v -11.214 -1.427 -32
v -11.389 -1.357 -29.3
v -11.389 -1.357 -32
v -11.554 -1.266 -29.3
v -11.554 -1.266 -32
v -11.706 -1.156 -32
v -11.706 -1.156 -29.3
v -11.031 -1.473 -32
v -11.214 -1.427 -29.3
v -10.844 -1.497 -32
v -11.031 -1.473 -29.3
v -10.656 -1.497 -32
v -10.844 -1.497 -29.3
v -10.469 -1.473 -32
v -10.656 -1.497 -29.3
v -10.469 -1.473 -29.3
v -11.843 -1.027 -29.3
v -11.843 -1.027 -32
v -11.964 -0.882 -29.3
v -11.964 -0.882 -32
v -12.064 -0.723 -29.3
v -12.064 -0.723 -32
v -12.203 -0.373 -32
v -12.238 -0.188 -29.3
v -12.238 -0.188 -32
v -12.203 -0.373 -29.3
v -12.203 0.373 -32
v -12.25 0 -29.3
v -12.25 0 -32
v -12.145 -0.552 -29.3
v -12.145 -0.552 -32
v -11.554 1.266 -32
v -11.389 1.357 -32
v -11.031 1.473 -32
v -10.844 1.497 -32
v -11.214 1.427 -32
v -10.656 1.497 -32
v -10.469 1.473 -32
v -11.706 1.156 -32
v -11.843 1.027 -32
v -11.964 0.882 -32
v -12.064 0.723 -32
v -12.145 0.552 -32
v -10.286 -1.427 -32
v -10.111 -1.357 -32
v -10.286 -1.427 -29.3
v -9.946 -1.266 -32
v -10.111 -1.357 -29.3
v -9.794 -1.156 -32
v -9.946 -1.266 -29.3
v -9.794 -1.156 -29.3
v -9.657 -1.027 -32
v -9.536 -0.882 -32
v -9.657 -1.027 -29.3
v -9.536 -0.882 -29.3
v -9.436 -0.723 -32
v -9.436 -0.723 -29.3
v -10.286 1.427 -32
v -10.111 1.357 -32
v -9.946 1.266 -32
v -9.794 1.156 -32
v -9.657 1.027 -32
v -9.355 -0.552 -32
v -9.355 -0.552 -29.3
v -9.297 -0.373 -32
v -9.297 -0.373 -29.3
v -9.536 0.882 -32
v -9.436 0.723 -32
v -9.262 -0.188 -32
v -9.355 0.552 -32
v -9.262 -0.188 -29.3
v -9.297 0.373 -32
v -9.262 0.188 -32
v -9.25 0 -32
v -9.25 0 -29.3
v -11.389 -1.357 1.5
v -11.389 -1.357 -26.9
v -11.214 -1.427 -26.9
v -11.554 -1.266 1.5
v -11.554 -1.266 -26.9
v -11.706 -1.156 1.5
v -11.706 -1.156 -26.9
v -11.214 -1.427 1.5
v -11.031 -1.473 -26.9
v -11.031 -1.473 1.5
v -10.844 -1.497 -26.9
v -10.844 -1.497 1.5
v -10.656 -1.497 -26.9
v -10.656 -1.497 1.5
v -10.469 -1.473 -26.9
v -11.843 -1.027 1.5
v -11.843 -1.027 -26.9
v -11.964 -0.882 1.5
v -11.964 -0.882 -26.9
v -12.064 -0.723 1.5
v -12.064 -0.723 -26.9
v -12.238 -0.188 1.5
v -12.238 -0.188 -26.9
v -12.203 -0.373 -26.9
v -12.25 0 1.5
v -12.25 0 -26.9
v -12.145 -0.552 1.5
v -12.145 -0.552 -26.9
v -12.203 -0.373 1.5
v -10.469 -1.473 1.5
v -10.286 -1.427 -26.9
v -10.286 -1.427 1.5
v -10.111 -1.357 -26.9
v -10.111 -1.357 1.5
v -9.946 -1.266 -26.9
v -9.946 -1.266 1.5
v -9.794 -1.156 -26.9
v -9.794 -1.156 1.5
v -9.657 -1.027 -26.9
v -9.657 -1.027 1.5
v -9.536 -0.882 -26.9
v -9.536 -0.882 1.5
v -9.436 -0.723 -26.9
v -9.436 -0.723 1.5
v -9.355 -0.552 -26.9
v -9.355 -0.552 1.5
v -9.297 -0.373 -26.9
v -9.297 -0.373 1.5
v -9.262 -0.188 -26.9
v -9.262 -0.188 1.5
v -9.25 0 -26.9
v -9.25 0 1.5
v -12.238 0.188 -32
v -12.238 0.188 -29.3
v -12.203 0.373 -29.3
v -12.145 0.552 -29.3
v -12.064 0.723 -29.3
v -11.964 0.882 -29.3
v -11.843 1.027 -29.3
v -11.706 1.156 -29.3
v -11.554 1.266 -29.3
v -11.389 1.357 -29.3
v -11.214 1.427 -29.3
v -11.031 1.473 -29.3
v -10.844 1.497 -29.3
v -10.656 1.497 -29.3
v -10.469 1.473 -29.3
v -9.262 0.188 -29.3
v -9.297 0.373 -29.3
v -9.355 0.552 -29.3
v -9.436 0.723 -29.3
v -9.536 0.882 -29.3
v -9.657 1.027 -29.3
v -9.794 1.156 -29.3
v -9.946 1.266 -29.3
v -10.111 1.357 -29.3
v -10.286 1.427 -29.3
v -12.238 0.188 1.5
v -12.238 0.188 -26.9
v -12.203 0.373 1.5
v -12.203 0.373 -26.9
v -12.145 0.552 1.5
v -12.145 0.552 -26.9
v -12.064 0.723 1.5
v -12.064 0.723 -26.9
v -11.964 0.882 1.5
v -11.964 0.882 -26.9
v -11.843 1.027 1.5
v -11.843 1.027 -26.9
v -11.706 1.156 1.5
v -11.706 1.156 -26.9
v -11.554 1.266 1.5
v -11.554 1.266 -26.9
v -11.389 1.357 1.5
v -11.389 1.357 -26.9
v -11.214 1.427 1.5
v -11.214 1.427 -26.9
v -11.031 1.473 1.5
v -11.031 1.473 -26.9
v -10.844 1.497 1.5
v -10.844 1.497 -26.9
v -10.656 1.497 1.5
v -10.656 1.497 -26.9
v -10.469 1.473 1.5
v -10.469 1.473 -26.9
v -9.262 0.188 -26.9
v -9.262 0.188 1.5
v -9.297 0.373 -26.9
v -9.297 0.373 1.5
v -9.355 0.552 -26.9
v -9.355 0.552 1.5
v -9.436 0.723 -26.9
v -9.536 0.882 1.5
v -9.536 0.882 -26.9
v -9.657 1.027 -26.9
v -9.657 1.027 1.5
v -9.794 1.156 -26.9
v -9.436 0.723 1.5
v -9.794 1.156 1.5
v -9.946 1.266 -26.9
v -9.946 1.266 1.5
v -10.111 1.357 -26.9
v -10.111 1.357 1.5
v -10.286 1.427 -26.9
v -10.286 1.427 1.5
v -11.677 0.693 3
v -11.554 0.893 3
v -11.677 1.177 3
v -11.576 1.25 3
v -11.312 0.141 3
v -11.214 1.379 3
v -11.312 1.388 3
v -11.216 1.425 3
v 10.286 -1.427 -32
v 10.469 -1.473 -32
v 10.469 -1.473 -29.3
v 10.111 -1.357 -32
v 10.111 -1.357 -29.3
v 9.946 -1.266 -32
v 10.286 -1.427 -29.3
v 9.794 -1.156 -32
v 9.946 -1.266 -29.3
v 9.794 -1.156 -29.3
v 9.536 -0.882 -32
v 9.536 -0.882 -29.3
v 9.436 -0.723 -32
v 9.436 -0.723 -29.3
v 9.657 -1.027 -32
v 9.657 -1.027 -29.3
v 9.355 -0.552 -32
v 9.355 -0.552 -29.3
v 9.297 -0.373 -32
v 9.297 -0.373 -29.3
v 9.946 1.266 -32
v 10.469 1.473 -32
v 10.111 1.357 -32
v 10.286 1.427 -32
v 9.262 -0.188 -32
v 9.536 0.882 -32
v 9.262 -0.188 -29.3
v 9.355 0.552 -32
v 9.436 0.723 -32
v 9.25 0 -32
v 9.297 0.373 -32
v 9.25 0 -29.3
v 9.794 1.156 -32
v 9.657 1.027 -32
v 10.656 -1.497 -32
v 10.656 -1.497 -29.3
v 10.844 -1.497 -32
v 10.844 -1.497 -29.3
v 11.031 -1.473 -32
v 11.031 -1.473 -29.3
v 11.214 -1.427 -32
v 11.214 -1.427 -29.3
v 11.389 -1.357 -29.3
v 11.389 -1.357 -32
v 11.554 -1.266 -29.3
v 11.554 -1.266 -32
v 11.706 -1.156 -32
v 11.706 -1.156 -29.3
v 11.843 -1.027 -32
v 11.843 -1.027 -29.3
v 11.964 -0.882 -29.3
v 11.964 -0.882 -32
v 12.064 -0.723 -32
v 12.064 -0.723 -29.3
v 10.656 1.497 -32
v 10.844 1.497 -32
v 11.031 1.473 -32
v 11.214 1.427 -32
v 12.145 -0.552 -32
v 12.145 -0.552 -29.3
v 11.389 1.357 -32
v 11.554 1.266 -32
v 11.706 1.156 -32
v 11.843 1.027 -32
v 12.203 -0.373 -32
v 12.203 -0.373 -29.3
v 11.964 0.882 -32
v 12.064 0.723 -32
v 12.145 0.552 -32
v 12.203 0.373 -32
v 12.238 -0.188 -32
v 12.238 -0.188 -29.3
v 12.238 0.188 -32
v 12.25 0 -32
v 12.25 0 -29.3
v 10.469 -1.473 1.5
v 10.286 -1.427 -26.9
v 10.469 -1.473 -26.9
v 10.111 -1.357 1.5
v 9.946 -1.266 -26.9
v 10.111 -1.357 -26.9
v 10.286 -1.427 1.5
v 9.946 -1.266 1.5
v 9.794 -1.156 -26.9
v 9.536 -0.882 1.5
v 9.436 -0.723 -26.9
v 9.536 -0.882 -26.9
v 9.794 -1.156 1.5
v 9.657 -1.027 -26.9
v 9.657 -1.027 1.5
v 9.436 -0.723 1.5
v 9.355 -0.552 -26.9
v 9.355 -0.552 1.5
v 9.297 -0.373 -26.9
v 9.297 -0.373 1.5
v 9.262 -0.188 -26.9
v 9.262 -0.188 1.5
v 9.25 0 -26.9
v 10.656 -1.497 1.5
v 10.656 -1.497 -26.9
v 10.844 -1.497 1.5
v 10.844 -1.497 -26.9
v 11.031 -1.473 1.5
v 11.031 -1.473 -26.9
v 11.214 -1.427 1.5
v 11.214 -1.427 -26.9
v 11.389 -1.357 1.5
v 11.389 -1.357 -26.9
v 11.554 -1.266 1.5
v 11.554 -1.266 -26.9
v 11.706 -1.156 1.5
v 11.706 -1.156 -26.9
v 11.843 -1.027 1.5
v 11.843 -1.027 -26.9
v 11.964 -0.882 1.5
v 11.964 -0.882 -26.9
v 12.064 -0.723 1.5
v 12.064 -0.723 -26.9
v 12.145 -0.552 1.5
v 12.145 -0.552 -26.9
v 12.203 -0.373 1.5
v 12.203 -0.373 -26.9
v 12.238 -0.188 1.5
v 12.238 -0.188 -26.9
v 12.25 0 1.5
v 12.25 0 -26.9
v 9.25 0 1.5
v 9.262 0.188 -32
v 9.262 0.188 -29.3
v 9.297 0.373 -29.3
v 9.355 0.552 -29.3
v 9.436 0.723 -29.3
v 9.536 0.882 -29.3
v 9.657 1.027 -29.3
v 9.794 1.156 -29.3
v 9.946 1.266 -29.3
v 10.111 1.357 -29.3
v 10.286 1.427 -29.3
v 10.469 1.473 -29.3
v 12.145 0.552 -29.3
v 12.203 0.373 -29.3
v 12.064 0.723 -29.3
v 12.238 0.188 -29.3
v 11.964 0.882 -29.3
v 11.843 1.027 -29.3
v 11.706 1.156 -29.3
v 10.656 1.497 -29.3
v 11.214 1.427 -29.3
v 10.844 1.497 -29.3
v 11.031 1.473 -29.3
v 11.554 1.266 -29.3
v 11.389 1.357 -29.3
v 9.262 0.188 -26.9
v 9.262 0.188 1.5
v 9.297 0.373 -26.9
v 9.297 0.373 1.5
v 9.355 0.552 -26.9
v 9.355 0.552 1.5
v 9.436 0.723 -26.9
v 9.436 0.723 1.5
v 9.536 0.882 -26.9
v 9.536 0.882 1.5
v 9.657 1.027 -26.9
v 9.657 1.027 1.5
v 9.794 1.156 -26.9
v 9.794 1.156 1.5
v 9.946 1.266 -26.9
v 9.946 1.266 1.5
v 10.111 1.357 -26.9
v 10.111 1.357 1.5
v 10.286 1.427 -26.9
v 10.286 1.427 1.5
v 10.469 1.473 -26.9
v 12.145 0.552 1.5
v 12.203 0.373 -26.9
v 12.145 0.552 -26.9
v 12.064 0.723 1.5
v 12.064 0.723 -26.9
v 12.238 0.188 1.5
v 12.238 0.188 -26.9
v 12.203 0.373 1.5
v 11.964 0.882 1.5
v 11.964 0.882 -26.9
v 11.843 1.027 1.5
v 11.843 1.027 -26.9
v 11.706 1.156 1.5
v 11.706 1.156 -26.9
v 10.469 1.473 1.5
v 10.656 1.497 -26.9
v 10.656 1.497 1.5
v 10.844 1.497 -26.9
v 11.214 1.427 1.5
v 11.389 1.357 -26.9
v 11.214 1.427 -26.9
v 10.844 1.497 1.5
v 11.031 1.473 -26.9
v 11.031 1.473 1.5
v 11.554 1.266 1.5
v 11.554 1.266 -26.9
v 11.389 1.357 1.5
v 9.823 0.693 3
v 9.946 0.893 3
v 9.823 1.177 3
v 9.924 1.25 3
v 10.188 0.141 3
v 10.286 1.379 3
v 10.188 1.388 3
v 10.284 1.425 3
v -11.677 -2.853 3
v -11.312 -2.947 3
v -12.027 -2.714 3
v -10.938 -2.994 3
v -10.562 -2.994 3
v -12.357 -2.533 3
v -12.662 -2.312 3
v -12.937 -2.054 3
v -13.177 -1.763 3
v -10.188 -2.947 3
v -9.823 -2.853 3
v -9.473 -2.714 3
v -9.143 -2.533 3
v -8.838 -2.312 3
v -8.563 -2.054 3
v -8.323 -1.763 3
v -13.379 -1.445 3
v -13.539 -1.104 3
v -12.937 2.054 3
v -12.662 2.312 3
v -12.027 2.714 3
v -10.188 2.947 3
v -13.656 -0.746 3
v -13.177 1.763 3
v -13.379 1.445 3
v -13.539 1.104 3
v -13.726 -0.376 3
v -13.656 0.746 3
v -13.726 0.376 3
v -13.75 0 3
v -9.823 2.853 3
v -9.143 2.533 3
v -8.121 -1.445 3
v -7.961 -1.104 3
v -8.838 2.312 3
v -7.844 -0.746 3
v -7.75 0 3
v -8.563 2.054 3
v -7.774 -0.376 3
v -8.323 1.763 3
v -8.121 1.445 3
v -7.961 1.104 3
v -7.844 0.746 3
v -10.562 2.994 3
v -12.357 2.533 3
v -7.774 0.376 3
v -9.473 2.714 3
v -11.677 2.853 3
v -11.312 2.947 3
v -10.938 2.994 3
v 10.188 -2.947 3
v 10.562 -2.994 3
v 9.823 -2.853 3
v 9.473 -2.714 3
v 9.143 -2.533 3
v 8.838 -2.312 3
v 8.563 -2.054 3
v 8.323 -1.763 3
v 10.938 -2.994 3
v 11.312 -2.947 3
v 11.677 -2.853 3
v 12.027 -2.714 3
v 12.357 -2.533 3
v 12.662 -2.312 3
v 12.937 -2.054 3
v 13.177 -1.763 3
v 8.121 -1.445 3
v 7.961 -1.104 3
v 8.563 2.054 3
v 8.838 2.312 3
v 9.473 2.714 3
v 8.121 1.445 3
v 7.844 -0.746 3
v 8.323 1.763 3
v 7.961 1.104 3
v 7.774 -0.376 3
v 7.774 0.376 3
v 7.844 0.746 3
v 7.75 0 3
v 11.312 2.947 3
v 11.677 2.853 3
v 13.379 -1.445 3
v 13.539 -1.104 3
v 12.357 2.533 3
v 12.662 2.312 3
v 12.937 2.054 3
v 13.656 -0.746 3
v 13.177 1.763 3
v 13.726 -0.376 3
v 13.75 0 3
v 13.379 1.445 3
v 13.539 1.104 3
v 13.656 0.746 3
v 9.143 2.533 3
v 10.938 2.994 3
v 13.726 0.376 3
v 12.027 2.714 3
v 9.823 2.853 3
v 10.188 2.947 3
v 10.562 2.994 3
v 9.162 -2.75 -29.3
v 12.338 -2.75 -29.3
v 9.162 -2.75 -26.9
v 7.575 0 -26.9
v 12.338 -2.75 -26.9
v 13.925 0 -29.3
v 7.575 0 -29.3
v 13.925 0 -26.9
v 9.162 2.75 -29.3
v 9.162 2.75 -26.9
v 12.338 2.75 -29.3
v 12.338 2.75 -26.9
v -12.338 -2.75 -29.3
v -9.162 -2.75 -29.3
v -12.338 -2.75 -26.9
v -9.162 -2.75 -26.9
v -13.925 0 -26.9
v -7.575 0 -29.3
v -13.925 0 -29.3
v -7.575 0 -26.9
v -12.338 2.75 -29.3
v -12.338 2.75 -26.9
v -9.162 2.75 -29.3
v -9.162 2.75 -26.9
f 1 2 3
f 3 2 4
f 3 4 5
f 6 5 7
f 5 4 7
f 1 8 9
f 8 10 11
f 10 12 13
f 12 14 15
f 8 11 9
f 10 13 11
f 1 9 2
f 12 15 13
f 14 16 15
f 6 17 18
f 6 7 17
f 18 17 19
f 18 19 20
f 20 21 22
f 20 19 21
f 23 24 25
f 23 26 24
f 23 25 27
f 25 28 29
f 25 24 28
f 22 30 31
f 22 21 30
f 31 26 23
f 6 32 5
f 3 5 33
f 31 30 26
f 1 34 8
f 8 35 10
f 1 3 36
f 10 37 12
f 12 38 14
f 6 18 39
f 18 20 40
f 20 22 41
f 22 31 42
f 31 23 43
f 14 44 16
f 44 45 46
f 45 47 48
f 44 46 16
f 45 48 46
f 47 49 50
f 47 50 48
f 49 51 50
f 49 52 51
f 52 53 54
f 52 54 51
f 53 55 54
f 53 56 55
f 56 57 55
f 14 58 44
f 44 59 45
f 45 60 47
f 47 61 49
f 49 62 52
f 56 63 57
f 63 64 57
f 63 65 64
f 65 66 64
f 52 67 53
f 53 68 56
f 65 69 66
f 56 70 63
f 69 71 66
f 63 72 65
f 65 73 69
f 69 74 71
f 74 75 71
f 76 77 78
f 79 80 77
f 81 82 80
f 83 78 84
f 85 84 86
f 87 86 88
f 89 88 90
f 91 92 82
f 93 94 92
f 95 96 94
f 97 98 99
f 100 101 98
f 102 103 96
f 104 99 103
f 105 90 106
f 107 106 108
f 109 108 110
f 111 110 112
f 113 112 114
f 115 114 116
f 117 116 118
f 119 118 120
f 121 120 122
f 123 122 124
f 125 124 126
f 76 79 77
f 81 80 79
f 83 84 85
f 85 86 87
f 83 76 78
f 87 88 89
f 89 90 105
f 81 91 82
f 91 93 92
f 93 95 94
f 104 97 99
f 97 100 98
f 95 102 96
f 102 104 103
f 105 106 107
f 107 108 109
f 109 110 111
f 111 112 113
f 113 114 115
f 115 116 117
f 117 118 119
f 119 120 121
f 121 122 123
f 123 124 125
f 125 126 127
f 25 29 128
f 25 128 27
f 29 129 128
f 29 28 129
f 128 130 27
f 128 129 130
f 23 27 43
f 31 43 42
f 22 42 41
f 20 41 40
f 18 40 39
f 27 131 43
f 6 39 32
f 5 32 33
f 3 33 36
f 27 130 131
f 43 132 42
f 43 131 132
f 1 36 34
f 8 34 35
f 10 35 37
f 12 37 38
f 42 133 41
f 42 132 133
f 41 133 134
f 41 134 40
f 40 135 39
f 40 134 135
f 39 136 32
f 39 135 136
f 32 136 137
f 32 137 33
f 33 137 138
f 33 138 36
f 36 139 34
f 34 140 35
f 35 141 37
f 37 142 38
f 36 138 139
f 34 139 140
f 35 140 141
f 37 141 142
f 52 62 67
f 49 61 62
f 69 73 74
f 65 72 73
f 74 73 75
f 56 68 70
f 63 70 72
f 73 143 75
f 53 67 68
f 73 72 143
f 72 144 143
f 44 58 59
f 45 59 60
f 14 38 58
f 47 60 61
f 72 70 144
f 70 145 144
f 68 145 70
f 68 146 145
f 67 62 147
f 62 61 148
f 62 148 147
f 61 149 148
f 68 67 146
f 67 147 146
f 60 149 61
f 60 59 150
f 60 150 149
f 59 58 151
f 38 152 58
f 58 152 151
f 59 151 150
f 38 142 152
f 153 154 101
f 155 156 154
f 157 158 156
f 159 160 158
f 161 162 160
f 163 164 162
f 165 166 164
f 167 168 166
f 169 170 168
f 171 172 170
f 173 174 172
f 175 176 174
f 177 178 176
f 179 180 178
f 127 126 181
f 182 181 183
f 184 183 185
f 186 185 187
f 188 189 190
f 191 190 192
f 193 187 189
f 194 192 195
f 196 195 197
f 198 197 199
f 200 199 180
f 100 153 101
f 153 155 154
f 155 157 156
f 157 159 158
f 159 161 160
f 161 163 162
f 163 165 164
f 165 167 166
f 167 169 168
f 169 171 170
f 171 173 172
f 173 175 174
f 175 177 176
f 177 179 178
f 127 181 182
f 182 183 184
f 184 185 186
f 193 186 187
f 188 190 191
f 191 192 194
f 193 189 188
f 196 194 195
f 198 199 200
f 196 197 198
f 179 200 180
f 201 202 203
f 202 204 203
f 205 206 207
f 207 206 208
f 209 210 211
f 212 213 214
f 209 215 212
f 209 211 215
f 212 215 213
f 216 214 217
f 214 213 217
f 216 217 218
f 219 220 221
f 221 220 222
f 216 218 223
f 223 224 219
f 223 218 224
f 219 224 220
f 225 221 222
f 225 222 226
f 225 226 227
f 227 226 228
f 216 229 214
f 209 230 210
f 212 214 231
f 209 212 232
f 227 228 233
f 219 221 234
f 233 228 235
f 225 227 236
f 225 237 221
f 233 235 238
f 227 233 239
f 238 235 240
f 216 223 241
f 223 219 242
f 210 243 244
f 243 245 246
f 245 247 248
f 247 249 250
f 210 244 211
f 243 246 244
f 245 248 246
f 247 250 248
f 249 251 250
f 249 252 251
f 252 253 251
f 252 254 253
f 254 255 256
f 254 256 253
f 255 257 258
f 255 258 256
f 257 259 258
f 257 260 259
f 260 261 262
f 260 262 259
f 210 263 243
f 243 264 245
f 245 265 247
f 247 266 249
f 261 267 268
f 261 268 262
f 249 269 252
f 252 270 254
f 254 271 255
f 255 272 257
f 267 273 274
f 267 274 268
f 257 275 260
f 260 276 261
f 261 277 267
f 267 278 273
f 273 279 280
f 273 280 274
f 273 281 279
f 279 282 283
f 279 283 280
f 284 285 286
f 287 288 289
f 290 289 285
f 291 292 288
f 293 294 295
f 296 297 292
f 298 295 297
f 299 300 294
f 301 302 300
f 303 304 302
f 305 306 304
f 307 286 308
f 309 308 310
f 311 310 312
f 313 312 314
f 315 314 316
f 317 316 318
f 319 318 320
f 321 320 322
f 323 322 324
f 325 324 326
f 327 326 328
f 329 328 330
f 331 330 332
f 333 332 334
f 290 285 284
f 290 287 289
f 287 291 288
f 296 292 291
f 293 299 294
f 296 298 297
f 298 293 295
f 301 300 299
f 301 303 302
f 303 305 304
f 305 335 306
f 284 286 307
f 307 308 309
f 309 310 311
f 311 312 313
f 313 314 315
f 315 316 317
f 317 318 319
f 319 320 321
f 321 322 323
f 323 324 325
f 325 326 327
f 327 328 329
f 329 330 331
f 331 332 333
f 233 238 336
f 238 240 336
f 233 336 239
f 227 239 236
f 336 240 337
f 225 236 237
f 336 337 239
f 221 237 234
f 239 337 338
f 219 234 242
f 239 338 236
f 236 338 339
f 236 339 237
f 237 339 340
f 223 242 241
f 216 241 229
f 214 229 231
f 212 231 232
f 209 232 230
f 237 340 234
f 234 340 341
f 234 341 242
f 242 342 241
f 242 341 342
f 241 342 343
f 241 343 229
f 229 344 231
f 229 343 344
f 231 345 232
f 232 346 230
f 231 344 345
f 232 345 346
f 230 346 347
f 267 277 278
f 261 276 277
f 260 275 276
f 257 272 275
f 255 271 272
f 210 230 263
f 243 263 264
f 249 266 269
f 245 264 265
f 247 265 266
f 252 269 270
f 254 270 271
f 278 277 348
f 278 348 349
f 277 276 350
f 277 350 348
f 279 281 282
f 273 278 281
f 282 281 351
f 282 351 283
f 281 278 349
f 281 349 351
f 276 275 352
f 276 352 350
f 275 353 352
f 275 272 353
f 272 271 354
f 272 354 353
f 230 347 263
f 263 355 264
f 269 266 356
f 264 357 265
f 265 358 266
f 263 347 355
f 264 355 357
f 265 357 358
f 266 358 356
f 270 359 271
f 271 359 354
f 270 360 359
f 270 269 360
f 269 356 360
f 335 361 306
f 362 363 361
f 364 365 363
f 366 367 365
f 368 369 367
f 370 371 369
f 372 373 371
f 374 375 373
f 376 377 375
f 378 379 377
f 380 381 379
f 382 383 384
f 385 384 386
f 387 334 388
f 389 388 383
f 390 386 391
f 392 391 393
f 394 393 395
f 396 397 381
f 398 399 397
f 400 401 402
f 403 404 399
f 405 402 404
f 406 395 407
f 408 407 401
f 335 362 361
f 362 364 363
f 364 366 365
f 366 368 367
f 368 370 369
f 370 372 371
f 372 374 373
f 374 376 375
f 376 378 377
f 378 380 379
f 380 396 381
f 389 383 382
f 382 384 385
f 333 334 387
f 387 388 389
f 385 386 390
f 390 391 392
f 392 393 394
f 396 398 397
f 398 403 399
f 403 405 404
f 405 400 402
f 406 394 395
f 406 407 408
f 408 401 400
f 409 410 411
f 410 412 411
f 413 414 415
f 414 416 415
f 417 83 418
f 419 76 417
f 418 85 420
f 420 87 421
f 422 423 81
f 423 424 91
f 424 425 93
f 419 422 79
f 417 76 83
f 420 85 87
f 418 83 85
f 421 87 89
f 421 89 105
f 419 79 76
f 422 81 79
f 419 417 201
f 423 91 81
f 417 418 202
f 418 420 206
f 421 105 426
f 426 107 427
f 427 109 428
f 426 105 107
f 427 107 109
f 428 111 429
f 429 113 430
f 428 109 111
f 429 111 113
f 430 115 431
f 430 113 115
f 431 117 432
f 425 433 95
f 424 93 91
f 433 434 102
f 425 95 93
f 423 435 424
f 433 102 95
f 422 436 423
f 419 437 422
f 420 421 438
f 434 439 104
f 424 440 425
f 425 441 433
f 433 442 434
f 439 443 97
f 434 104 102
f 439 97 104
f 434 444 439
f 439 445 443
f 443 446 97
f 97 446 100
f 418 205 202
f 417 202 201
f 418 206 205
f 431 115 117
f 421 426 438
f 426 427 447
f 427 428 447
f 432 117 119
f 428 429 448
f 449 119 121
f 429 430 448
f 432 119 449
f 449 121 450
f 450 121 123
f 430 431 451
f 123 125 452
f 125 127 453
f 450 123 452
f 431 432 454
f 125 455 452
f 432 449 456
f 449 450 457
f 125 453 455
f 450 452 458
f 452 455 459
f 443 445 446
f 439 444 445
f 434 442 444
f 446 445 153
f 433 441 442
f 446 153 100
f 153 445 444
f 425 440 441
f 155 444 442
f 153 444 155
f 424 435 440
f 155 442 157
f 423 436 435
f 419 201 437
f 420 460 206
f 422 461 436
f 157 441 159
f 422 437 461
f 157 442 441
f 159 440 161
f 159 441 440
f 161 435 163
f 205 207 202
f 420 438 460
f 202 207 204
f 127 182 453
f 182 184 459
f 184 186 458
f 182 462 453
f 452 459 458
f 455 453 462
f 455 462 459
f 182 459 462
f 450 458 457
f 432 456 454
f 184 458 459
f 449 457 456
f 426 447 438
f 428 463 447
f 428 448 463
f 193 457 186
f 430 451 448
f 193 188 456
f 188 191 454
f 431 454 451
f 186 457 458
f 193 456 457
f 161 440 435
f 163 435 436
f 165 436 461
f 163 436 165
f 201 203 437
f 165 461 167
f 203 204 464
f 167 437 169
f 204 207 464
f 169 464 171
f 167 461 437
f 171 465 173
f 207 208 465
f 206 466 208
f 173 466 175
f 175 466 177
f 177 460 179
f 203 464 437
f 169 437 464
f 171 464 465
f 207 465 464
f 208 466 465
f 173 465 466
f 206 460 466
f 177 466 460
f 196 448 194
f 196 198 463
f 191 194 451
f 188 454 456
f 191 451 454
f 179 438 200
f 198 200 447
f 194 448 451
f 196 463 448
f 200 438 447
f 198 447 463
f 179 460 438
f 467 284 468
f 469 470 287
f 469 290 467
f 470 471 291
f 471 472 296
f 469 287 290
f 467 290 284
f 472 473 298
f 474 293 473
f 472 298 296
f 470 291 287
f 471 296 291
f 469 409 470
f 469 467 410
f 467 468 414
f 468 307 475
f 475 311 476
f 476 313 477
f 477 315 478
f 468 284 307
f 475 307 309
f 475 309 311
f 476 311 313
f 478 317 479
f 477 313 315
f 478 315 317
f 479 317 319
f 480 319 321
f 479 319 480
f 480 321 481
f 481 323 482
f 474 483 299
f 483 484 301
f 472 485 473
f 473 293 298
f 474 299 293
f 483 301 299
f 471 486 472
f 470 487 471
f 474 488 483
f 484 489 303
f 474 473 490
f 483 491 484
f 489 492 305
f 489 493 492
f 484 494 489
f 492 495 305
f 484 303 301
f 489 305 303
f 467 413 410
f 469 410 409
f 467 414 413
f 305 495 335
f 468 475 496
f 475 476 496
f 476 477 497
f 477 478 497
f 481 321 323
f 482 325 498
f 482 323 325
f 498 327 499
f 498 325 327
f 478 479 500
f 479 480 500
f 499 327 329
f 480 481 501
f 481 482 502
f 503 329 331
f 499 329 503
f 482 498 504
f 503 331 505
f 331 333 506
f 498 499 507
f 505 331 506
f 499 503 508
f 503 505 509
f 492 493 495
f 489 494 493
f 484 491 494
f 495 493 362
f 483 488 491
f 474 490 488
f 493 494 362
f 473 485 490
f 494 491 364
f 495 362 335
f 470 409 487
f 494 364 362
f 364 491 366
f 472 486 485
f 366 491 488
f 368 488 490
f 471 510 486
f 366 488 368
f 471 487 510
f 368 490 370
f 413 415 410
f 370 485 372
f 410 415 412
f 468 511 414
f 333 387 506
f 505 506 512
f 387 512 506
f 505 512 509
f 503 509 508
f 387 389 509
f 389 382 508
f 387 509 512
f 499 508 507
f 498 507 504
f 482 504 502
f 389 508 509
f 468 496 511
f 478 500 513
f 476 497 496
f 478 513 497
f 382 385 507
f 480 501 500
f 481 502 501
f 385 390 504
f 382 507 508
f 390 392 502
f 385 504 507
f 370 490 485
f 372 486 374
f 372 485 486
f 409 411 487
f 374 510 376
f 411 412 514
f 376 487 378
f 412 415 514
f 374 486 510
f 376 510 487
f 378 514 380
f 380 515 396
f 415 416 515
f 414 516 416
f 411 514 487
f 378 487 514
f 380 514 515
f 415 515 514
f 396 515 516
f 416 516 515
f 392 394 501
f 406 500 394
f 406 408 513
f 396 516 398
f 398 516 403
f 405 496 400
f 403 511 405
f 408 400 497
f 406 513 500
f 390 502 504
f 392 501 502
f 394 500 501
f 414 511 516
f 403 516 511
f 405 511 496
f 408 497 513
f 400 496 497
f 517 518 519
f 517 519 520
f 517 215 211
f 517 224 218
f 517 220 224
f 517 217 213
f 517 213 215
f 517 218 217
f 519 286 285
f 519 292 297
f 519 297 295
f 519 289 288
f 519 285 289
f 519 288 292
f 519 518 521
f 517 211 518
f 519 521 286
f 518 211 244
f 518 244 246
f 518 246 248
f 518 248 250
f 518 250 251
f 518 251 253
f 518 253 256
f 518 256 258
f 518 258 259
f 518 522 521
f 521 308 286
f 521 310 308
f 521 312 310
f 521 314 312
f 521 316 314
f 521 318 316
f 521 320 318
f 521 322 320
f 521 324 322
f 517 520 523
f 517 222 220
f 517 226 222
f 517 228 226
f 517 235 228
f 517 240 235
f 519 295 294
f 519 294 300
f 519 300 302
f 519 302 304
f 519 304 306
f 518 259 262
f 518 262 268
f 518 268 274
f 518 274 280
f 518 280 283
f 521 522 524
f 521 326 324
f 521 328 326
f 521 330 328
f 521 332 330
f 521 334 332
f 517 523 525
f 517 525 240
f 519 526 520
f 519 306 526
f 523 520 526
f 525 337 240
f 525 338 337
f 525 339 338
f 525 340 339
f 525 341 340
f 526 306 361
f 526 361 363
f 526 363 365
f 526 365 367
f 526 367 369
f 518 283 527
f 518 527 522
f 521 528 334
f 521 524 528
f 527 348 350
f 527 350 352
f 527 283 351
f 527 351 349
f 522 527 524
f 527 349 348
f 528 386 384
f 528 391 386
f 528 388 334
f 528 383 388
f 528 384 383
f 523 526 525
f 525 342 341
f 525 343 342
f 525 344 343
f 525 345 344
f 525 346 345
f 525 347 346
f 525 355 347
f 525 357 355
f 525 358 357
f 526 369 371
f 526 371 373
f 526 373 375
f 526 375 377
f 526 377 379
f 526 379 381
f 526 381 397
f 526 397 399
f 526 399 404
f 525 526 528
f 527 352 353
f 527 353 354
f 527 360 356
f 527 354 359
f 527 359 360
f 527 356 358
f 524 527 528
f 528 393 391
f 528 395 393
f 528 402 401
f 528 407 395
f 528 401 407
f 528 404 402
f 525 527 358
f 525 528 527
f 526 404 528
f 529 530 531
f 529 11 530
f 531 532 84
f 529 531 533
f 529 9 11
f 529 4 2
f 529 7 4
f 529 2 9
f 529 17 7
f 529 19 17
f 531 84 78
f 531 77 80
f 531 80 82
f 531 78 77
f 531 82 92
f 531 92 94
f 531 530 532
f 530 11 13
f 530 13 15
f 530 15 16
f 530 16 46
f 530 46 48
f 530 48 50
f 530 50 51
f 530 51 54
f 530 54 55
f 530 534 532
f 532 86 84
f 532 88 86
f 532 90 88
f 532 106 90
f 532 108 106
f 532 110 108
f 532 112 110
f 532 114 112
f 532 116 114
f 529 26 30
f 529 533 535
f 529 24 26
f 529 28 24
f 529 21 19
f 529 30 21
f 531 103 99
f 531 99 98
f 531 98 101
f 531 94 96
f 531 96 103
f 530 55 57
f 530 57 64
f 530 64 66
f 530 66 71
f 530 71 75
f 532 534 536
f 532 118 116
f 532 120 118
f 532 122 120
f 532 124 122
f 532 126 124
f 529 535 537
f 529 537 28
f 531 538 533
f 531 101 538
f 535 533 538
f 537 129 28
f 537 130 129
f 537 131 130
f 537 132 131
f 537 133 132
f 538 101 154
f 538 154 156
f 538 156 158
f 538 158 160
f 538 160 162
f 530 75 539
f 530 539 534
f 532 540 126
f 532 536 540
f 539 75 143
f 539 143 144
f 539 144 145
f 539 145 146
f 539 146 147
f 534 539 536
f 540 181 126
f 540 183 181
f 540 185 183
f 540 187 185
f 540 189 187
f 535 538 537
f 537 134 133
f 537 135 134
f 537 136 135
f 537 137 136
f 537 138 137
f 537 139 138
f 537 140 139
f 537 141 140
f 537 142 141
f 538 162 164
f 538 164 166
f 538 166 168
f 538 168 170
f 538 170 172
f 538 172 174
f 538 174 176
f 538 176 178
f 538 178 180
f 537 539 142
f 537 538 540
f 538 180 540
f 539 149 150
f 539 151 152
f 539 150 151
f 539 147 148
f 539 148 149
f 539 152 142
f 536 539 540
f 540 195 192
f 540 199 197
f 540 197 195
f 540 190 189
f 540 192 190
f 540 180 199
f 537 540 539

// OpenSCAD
$fn = 50;

difference() {
	union() {
		translate(v = [-10.75, 0, 3]) {
			rotate(a = [0, 0, 0]) {
				difference() {
					union() {
						translate(v = [0, 0, -35.0]) {
							cylinder(h = 35, r = 1.5);
						}
						translate(v = [0, 0, -1.5]) {
							cylinder(h = 1.5, r1 = 1.5, r2 = 3);
						}
					}
					union();
				}
			}
		}
		translate(v = [-10.75, 0, -29.3]) {
			rotate(a = [0, 0, 0]) {
				difference() {
					union() {
						linear_extrude(height = 2.4) {
							polygon(points = [[3.1754264805429417, 0.0], [1.5877132402714713, 2.75], [-1.5877132402714702, 2.7500000000000004], [-3.1754264805429417, 3.888775875324659e-16], [-1.5877132402714722, -2.7499999999999996], [1.5877132402714687, -2.7500000000000013]]);
						}
					}
					union();
				}
			}
		}
		translate(v = [10.75, 0, 3]) {
			rotate(a = [0, 0, 0]) {
				difference() {
					union() {
						translate(v = [0, 0, -35.0]) {
							cylinder(h = 35, r = 1.5);
						}
						translate(v = [0, 0, -1.5]) {
							cylinder(h = 1.5, r1 = 1.5, r2 = 3);
						}
					}
					union();
				}
			}
		}
		translate(v = [10.75, 0, -29.3]) {
			rotate(a = [0, 0, 0]) {
				difference() {
					union() {
						linear_extrude(height = 2.4) {
							polygon(points = [[3.1754264805429417, 0.0], [1.5877132402714713, 2.75], [-1.5877132402714702, 2.7500000000000004], [-3.1754264805429417, 3.888775875324659e-16], [-1.5877132402714722, -2.7499999999999996], [1.5877132402714687, -2.7500000000000013]]);
						}
					}
					union();
				}
			}
		}
	}
	union();
}
